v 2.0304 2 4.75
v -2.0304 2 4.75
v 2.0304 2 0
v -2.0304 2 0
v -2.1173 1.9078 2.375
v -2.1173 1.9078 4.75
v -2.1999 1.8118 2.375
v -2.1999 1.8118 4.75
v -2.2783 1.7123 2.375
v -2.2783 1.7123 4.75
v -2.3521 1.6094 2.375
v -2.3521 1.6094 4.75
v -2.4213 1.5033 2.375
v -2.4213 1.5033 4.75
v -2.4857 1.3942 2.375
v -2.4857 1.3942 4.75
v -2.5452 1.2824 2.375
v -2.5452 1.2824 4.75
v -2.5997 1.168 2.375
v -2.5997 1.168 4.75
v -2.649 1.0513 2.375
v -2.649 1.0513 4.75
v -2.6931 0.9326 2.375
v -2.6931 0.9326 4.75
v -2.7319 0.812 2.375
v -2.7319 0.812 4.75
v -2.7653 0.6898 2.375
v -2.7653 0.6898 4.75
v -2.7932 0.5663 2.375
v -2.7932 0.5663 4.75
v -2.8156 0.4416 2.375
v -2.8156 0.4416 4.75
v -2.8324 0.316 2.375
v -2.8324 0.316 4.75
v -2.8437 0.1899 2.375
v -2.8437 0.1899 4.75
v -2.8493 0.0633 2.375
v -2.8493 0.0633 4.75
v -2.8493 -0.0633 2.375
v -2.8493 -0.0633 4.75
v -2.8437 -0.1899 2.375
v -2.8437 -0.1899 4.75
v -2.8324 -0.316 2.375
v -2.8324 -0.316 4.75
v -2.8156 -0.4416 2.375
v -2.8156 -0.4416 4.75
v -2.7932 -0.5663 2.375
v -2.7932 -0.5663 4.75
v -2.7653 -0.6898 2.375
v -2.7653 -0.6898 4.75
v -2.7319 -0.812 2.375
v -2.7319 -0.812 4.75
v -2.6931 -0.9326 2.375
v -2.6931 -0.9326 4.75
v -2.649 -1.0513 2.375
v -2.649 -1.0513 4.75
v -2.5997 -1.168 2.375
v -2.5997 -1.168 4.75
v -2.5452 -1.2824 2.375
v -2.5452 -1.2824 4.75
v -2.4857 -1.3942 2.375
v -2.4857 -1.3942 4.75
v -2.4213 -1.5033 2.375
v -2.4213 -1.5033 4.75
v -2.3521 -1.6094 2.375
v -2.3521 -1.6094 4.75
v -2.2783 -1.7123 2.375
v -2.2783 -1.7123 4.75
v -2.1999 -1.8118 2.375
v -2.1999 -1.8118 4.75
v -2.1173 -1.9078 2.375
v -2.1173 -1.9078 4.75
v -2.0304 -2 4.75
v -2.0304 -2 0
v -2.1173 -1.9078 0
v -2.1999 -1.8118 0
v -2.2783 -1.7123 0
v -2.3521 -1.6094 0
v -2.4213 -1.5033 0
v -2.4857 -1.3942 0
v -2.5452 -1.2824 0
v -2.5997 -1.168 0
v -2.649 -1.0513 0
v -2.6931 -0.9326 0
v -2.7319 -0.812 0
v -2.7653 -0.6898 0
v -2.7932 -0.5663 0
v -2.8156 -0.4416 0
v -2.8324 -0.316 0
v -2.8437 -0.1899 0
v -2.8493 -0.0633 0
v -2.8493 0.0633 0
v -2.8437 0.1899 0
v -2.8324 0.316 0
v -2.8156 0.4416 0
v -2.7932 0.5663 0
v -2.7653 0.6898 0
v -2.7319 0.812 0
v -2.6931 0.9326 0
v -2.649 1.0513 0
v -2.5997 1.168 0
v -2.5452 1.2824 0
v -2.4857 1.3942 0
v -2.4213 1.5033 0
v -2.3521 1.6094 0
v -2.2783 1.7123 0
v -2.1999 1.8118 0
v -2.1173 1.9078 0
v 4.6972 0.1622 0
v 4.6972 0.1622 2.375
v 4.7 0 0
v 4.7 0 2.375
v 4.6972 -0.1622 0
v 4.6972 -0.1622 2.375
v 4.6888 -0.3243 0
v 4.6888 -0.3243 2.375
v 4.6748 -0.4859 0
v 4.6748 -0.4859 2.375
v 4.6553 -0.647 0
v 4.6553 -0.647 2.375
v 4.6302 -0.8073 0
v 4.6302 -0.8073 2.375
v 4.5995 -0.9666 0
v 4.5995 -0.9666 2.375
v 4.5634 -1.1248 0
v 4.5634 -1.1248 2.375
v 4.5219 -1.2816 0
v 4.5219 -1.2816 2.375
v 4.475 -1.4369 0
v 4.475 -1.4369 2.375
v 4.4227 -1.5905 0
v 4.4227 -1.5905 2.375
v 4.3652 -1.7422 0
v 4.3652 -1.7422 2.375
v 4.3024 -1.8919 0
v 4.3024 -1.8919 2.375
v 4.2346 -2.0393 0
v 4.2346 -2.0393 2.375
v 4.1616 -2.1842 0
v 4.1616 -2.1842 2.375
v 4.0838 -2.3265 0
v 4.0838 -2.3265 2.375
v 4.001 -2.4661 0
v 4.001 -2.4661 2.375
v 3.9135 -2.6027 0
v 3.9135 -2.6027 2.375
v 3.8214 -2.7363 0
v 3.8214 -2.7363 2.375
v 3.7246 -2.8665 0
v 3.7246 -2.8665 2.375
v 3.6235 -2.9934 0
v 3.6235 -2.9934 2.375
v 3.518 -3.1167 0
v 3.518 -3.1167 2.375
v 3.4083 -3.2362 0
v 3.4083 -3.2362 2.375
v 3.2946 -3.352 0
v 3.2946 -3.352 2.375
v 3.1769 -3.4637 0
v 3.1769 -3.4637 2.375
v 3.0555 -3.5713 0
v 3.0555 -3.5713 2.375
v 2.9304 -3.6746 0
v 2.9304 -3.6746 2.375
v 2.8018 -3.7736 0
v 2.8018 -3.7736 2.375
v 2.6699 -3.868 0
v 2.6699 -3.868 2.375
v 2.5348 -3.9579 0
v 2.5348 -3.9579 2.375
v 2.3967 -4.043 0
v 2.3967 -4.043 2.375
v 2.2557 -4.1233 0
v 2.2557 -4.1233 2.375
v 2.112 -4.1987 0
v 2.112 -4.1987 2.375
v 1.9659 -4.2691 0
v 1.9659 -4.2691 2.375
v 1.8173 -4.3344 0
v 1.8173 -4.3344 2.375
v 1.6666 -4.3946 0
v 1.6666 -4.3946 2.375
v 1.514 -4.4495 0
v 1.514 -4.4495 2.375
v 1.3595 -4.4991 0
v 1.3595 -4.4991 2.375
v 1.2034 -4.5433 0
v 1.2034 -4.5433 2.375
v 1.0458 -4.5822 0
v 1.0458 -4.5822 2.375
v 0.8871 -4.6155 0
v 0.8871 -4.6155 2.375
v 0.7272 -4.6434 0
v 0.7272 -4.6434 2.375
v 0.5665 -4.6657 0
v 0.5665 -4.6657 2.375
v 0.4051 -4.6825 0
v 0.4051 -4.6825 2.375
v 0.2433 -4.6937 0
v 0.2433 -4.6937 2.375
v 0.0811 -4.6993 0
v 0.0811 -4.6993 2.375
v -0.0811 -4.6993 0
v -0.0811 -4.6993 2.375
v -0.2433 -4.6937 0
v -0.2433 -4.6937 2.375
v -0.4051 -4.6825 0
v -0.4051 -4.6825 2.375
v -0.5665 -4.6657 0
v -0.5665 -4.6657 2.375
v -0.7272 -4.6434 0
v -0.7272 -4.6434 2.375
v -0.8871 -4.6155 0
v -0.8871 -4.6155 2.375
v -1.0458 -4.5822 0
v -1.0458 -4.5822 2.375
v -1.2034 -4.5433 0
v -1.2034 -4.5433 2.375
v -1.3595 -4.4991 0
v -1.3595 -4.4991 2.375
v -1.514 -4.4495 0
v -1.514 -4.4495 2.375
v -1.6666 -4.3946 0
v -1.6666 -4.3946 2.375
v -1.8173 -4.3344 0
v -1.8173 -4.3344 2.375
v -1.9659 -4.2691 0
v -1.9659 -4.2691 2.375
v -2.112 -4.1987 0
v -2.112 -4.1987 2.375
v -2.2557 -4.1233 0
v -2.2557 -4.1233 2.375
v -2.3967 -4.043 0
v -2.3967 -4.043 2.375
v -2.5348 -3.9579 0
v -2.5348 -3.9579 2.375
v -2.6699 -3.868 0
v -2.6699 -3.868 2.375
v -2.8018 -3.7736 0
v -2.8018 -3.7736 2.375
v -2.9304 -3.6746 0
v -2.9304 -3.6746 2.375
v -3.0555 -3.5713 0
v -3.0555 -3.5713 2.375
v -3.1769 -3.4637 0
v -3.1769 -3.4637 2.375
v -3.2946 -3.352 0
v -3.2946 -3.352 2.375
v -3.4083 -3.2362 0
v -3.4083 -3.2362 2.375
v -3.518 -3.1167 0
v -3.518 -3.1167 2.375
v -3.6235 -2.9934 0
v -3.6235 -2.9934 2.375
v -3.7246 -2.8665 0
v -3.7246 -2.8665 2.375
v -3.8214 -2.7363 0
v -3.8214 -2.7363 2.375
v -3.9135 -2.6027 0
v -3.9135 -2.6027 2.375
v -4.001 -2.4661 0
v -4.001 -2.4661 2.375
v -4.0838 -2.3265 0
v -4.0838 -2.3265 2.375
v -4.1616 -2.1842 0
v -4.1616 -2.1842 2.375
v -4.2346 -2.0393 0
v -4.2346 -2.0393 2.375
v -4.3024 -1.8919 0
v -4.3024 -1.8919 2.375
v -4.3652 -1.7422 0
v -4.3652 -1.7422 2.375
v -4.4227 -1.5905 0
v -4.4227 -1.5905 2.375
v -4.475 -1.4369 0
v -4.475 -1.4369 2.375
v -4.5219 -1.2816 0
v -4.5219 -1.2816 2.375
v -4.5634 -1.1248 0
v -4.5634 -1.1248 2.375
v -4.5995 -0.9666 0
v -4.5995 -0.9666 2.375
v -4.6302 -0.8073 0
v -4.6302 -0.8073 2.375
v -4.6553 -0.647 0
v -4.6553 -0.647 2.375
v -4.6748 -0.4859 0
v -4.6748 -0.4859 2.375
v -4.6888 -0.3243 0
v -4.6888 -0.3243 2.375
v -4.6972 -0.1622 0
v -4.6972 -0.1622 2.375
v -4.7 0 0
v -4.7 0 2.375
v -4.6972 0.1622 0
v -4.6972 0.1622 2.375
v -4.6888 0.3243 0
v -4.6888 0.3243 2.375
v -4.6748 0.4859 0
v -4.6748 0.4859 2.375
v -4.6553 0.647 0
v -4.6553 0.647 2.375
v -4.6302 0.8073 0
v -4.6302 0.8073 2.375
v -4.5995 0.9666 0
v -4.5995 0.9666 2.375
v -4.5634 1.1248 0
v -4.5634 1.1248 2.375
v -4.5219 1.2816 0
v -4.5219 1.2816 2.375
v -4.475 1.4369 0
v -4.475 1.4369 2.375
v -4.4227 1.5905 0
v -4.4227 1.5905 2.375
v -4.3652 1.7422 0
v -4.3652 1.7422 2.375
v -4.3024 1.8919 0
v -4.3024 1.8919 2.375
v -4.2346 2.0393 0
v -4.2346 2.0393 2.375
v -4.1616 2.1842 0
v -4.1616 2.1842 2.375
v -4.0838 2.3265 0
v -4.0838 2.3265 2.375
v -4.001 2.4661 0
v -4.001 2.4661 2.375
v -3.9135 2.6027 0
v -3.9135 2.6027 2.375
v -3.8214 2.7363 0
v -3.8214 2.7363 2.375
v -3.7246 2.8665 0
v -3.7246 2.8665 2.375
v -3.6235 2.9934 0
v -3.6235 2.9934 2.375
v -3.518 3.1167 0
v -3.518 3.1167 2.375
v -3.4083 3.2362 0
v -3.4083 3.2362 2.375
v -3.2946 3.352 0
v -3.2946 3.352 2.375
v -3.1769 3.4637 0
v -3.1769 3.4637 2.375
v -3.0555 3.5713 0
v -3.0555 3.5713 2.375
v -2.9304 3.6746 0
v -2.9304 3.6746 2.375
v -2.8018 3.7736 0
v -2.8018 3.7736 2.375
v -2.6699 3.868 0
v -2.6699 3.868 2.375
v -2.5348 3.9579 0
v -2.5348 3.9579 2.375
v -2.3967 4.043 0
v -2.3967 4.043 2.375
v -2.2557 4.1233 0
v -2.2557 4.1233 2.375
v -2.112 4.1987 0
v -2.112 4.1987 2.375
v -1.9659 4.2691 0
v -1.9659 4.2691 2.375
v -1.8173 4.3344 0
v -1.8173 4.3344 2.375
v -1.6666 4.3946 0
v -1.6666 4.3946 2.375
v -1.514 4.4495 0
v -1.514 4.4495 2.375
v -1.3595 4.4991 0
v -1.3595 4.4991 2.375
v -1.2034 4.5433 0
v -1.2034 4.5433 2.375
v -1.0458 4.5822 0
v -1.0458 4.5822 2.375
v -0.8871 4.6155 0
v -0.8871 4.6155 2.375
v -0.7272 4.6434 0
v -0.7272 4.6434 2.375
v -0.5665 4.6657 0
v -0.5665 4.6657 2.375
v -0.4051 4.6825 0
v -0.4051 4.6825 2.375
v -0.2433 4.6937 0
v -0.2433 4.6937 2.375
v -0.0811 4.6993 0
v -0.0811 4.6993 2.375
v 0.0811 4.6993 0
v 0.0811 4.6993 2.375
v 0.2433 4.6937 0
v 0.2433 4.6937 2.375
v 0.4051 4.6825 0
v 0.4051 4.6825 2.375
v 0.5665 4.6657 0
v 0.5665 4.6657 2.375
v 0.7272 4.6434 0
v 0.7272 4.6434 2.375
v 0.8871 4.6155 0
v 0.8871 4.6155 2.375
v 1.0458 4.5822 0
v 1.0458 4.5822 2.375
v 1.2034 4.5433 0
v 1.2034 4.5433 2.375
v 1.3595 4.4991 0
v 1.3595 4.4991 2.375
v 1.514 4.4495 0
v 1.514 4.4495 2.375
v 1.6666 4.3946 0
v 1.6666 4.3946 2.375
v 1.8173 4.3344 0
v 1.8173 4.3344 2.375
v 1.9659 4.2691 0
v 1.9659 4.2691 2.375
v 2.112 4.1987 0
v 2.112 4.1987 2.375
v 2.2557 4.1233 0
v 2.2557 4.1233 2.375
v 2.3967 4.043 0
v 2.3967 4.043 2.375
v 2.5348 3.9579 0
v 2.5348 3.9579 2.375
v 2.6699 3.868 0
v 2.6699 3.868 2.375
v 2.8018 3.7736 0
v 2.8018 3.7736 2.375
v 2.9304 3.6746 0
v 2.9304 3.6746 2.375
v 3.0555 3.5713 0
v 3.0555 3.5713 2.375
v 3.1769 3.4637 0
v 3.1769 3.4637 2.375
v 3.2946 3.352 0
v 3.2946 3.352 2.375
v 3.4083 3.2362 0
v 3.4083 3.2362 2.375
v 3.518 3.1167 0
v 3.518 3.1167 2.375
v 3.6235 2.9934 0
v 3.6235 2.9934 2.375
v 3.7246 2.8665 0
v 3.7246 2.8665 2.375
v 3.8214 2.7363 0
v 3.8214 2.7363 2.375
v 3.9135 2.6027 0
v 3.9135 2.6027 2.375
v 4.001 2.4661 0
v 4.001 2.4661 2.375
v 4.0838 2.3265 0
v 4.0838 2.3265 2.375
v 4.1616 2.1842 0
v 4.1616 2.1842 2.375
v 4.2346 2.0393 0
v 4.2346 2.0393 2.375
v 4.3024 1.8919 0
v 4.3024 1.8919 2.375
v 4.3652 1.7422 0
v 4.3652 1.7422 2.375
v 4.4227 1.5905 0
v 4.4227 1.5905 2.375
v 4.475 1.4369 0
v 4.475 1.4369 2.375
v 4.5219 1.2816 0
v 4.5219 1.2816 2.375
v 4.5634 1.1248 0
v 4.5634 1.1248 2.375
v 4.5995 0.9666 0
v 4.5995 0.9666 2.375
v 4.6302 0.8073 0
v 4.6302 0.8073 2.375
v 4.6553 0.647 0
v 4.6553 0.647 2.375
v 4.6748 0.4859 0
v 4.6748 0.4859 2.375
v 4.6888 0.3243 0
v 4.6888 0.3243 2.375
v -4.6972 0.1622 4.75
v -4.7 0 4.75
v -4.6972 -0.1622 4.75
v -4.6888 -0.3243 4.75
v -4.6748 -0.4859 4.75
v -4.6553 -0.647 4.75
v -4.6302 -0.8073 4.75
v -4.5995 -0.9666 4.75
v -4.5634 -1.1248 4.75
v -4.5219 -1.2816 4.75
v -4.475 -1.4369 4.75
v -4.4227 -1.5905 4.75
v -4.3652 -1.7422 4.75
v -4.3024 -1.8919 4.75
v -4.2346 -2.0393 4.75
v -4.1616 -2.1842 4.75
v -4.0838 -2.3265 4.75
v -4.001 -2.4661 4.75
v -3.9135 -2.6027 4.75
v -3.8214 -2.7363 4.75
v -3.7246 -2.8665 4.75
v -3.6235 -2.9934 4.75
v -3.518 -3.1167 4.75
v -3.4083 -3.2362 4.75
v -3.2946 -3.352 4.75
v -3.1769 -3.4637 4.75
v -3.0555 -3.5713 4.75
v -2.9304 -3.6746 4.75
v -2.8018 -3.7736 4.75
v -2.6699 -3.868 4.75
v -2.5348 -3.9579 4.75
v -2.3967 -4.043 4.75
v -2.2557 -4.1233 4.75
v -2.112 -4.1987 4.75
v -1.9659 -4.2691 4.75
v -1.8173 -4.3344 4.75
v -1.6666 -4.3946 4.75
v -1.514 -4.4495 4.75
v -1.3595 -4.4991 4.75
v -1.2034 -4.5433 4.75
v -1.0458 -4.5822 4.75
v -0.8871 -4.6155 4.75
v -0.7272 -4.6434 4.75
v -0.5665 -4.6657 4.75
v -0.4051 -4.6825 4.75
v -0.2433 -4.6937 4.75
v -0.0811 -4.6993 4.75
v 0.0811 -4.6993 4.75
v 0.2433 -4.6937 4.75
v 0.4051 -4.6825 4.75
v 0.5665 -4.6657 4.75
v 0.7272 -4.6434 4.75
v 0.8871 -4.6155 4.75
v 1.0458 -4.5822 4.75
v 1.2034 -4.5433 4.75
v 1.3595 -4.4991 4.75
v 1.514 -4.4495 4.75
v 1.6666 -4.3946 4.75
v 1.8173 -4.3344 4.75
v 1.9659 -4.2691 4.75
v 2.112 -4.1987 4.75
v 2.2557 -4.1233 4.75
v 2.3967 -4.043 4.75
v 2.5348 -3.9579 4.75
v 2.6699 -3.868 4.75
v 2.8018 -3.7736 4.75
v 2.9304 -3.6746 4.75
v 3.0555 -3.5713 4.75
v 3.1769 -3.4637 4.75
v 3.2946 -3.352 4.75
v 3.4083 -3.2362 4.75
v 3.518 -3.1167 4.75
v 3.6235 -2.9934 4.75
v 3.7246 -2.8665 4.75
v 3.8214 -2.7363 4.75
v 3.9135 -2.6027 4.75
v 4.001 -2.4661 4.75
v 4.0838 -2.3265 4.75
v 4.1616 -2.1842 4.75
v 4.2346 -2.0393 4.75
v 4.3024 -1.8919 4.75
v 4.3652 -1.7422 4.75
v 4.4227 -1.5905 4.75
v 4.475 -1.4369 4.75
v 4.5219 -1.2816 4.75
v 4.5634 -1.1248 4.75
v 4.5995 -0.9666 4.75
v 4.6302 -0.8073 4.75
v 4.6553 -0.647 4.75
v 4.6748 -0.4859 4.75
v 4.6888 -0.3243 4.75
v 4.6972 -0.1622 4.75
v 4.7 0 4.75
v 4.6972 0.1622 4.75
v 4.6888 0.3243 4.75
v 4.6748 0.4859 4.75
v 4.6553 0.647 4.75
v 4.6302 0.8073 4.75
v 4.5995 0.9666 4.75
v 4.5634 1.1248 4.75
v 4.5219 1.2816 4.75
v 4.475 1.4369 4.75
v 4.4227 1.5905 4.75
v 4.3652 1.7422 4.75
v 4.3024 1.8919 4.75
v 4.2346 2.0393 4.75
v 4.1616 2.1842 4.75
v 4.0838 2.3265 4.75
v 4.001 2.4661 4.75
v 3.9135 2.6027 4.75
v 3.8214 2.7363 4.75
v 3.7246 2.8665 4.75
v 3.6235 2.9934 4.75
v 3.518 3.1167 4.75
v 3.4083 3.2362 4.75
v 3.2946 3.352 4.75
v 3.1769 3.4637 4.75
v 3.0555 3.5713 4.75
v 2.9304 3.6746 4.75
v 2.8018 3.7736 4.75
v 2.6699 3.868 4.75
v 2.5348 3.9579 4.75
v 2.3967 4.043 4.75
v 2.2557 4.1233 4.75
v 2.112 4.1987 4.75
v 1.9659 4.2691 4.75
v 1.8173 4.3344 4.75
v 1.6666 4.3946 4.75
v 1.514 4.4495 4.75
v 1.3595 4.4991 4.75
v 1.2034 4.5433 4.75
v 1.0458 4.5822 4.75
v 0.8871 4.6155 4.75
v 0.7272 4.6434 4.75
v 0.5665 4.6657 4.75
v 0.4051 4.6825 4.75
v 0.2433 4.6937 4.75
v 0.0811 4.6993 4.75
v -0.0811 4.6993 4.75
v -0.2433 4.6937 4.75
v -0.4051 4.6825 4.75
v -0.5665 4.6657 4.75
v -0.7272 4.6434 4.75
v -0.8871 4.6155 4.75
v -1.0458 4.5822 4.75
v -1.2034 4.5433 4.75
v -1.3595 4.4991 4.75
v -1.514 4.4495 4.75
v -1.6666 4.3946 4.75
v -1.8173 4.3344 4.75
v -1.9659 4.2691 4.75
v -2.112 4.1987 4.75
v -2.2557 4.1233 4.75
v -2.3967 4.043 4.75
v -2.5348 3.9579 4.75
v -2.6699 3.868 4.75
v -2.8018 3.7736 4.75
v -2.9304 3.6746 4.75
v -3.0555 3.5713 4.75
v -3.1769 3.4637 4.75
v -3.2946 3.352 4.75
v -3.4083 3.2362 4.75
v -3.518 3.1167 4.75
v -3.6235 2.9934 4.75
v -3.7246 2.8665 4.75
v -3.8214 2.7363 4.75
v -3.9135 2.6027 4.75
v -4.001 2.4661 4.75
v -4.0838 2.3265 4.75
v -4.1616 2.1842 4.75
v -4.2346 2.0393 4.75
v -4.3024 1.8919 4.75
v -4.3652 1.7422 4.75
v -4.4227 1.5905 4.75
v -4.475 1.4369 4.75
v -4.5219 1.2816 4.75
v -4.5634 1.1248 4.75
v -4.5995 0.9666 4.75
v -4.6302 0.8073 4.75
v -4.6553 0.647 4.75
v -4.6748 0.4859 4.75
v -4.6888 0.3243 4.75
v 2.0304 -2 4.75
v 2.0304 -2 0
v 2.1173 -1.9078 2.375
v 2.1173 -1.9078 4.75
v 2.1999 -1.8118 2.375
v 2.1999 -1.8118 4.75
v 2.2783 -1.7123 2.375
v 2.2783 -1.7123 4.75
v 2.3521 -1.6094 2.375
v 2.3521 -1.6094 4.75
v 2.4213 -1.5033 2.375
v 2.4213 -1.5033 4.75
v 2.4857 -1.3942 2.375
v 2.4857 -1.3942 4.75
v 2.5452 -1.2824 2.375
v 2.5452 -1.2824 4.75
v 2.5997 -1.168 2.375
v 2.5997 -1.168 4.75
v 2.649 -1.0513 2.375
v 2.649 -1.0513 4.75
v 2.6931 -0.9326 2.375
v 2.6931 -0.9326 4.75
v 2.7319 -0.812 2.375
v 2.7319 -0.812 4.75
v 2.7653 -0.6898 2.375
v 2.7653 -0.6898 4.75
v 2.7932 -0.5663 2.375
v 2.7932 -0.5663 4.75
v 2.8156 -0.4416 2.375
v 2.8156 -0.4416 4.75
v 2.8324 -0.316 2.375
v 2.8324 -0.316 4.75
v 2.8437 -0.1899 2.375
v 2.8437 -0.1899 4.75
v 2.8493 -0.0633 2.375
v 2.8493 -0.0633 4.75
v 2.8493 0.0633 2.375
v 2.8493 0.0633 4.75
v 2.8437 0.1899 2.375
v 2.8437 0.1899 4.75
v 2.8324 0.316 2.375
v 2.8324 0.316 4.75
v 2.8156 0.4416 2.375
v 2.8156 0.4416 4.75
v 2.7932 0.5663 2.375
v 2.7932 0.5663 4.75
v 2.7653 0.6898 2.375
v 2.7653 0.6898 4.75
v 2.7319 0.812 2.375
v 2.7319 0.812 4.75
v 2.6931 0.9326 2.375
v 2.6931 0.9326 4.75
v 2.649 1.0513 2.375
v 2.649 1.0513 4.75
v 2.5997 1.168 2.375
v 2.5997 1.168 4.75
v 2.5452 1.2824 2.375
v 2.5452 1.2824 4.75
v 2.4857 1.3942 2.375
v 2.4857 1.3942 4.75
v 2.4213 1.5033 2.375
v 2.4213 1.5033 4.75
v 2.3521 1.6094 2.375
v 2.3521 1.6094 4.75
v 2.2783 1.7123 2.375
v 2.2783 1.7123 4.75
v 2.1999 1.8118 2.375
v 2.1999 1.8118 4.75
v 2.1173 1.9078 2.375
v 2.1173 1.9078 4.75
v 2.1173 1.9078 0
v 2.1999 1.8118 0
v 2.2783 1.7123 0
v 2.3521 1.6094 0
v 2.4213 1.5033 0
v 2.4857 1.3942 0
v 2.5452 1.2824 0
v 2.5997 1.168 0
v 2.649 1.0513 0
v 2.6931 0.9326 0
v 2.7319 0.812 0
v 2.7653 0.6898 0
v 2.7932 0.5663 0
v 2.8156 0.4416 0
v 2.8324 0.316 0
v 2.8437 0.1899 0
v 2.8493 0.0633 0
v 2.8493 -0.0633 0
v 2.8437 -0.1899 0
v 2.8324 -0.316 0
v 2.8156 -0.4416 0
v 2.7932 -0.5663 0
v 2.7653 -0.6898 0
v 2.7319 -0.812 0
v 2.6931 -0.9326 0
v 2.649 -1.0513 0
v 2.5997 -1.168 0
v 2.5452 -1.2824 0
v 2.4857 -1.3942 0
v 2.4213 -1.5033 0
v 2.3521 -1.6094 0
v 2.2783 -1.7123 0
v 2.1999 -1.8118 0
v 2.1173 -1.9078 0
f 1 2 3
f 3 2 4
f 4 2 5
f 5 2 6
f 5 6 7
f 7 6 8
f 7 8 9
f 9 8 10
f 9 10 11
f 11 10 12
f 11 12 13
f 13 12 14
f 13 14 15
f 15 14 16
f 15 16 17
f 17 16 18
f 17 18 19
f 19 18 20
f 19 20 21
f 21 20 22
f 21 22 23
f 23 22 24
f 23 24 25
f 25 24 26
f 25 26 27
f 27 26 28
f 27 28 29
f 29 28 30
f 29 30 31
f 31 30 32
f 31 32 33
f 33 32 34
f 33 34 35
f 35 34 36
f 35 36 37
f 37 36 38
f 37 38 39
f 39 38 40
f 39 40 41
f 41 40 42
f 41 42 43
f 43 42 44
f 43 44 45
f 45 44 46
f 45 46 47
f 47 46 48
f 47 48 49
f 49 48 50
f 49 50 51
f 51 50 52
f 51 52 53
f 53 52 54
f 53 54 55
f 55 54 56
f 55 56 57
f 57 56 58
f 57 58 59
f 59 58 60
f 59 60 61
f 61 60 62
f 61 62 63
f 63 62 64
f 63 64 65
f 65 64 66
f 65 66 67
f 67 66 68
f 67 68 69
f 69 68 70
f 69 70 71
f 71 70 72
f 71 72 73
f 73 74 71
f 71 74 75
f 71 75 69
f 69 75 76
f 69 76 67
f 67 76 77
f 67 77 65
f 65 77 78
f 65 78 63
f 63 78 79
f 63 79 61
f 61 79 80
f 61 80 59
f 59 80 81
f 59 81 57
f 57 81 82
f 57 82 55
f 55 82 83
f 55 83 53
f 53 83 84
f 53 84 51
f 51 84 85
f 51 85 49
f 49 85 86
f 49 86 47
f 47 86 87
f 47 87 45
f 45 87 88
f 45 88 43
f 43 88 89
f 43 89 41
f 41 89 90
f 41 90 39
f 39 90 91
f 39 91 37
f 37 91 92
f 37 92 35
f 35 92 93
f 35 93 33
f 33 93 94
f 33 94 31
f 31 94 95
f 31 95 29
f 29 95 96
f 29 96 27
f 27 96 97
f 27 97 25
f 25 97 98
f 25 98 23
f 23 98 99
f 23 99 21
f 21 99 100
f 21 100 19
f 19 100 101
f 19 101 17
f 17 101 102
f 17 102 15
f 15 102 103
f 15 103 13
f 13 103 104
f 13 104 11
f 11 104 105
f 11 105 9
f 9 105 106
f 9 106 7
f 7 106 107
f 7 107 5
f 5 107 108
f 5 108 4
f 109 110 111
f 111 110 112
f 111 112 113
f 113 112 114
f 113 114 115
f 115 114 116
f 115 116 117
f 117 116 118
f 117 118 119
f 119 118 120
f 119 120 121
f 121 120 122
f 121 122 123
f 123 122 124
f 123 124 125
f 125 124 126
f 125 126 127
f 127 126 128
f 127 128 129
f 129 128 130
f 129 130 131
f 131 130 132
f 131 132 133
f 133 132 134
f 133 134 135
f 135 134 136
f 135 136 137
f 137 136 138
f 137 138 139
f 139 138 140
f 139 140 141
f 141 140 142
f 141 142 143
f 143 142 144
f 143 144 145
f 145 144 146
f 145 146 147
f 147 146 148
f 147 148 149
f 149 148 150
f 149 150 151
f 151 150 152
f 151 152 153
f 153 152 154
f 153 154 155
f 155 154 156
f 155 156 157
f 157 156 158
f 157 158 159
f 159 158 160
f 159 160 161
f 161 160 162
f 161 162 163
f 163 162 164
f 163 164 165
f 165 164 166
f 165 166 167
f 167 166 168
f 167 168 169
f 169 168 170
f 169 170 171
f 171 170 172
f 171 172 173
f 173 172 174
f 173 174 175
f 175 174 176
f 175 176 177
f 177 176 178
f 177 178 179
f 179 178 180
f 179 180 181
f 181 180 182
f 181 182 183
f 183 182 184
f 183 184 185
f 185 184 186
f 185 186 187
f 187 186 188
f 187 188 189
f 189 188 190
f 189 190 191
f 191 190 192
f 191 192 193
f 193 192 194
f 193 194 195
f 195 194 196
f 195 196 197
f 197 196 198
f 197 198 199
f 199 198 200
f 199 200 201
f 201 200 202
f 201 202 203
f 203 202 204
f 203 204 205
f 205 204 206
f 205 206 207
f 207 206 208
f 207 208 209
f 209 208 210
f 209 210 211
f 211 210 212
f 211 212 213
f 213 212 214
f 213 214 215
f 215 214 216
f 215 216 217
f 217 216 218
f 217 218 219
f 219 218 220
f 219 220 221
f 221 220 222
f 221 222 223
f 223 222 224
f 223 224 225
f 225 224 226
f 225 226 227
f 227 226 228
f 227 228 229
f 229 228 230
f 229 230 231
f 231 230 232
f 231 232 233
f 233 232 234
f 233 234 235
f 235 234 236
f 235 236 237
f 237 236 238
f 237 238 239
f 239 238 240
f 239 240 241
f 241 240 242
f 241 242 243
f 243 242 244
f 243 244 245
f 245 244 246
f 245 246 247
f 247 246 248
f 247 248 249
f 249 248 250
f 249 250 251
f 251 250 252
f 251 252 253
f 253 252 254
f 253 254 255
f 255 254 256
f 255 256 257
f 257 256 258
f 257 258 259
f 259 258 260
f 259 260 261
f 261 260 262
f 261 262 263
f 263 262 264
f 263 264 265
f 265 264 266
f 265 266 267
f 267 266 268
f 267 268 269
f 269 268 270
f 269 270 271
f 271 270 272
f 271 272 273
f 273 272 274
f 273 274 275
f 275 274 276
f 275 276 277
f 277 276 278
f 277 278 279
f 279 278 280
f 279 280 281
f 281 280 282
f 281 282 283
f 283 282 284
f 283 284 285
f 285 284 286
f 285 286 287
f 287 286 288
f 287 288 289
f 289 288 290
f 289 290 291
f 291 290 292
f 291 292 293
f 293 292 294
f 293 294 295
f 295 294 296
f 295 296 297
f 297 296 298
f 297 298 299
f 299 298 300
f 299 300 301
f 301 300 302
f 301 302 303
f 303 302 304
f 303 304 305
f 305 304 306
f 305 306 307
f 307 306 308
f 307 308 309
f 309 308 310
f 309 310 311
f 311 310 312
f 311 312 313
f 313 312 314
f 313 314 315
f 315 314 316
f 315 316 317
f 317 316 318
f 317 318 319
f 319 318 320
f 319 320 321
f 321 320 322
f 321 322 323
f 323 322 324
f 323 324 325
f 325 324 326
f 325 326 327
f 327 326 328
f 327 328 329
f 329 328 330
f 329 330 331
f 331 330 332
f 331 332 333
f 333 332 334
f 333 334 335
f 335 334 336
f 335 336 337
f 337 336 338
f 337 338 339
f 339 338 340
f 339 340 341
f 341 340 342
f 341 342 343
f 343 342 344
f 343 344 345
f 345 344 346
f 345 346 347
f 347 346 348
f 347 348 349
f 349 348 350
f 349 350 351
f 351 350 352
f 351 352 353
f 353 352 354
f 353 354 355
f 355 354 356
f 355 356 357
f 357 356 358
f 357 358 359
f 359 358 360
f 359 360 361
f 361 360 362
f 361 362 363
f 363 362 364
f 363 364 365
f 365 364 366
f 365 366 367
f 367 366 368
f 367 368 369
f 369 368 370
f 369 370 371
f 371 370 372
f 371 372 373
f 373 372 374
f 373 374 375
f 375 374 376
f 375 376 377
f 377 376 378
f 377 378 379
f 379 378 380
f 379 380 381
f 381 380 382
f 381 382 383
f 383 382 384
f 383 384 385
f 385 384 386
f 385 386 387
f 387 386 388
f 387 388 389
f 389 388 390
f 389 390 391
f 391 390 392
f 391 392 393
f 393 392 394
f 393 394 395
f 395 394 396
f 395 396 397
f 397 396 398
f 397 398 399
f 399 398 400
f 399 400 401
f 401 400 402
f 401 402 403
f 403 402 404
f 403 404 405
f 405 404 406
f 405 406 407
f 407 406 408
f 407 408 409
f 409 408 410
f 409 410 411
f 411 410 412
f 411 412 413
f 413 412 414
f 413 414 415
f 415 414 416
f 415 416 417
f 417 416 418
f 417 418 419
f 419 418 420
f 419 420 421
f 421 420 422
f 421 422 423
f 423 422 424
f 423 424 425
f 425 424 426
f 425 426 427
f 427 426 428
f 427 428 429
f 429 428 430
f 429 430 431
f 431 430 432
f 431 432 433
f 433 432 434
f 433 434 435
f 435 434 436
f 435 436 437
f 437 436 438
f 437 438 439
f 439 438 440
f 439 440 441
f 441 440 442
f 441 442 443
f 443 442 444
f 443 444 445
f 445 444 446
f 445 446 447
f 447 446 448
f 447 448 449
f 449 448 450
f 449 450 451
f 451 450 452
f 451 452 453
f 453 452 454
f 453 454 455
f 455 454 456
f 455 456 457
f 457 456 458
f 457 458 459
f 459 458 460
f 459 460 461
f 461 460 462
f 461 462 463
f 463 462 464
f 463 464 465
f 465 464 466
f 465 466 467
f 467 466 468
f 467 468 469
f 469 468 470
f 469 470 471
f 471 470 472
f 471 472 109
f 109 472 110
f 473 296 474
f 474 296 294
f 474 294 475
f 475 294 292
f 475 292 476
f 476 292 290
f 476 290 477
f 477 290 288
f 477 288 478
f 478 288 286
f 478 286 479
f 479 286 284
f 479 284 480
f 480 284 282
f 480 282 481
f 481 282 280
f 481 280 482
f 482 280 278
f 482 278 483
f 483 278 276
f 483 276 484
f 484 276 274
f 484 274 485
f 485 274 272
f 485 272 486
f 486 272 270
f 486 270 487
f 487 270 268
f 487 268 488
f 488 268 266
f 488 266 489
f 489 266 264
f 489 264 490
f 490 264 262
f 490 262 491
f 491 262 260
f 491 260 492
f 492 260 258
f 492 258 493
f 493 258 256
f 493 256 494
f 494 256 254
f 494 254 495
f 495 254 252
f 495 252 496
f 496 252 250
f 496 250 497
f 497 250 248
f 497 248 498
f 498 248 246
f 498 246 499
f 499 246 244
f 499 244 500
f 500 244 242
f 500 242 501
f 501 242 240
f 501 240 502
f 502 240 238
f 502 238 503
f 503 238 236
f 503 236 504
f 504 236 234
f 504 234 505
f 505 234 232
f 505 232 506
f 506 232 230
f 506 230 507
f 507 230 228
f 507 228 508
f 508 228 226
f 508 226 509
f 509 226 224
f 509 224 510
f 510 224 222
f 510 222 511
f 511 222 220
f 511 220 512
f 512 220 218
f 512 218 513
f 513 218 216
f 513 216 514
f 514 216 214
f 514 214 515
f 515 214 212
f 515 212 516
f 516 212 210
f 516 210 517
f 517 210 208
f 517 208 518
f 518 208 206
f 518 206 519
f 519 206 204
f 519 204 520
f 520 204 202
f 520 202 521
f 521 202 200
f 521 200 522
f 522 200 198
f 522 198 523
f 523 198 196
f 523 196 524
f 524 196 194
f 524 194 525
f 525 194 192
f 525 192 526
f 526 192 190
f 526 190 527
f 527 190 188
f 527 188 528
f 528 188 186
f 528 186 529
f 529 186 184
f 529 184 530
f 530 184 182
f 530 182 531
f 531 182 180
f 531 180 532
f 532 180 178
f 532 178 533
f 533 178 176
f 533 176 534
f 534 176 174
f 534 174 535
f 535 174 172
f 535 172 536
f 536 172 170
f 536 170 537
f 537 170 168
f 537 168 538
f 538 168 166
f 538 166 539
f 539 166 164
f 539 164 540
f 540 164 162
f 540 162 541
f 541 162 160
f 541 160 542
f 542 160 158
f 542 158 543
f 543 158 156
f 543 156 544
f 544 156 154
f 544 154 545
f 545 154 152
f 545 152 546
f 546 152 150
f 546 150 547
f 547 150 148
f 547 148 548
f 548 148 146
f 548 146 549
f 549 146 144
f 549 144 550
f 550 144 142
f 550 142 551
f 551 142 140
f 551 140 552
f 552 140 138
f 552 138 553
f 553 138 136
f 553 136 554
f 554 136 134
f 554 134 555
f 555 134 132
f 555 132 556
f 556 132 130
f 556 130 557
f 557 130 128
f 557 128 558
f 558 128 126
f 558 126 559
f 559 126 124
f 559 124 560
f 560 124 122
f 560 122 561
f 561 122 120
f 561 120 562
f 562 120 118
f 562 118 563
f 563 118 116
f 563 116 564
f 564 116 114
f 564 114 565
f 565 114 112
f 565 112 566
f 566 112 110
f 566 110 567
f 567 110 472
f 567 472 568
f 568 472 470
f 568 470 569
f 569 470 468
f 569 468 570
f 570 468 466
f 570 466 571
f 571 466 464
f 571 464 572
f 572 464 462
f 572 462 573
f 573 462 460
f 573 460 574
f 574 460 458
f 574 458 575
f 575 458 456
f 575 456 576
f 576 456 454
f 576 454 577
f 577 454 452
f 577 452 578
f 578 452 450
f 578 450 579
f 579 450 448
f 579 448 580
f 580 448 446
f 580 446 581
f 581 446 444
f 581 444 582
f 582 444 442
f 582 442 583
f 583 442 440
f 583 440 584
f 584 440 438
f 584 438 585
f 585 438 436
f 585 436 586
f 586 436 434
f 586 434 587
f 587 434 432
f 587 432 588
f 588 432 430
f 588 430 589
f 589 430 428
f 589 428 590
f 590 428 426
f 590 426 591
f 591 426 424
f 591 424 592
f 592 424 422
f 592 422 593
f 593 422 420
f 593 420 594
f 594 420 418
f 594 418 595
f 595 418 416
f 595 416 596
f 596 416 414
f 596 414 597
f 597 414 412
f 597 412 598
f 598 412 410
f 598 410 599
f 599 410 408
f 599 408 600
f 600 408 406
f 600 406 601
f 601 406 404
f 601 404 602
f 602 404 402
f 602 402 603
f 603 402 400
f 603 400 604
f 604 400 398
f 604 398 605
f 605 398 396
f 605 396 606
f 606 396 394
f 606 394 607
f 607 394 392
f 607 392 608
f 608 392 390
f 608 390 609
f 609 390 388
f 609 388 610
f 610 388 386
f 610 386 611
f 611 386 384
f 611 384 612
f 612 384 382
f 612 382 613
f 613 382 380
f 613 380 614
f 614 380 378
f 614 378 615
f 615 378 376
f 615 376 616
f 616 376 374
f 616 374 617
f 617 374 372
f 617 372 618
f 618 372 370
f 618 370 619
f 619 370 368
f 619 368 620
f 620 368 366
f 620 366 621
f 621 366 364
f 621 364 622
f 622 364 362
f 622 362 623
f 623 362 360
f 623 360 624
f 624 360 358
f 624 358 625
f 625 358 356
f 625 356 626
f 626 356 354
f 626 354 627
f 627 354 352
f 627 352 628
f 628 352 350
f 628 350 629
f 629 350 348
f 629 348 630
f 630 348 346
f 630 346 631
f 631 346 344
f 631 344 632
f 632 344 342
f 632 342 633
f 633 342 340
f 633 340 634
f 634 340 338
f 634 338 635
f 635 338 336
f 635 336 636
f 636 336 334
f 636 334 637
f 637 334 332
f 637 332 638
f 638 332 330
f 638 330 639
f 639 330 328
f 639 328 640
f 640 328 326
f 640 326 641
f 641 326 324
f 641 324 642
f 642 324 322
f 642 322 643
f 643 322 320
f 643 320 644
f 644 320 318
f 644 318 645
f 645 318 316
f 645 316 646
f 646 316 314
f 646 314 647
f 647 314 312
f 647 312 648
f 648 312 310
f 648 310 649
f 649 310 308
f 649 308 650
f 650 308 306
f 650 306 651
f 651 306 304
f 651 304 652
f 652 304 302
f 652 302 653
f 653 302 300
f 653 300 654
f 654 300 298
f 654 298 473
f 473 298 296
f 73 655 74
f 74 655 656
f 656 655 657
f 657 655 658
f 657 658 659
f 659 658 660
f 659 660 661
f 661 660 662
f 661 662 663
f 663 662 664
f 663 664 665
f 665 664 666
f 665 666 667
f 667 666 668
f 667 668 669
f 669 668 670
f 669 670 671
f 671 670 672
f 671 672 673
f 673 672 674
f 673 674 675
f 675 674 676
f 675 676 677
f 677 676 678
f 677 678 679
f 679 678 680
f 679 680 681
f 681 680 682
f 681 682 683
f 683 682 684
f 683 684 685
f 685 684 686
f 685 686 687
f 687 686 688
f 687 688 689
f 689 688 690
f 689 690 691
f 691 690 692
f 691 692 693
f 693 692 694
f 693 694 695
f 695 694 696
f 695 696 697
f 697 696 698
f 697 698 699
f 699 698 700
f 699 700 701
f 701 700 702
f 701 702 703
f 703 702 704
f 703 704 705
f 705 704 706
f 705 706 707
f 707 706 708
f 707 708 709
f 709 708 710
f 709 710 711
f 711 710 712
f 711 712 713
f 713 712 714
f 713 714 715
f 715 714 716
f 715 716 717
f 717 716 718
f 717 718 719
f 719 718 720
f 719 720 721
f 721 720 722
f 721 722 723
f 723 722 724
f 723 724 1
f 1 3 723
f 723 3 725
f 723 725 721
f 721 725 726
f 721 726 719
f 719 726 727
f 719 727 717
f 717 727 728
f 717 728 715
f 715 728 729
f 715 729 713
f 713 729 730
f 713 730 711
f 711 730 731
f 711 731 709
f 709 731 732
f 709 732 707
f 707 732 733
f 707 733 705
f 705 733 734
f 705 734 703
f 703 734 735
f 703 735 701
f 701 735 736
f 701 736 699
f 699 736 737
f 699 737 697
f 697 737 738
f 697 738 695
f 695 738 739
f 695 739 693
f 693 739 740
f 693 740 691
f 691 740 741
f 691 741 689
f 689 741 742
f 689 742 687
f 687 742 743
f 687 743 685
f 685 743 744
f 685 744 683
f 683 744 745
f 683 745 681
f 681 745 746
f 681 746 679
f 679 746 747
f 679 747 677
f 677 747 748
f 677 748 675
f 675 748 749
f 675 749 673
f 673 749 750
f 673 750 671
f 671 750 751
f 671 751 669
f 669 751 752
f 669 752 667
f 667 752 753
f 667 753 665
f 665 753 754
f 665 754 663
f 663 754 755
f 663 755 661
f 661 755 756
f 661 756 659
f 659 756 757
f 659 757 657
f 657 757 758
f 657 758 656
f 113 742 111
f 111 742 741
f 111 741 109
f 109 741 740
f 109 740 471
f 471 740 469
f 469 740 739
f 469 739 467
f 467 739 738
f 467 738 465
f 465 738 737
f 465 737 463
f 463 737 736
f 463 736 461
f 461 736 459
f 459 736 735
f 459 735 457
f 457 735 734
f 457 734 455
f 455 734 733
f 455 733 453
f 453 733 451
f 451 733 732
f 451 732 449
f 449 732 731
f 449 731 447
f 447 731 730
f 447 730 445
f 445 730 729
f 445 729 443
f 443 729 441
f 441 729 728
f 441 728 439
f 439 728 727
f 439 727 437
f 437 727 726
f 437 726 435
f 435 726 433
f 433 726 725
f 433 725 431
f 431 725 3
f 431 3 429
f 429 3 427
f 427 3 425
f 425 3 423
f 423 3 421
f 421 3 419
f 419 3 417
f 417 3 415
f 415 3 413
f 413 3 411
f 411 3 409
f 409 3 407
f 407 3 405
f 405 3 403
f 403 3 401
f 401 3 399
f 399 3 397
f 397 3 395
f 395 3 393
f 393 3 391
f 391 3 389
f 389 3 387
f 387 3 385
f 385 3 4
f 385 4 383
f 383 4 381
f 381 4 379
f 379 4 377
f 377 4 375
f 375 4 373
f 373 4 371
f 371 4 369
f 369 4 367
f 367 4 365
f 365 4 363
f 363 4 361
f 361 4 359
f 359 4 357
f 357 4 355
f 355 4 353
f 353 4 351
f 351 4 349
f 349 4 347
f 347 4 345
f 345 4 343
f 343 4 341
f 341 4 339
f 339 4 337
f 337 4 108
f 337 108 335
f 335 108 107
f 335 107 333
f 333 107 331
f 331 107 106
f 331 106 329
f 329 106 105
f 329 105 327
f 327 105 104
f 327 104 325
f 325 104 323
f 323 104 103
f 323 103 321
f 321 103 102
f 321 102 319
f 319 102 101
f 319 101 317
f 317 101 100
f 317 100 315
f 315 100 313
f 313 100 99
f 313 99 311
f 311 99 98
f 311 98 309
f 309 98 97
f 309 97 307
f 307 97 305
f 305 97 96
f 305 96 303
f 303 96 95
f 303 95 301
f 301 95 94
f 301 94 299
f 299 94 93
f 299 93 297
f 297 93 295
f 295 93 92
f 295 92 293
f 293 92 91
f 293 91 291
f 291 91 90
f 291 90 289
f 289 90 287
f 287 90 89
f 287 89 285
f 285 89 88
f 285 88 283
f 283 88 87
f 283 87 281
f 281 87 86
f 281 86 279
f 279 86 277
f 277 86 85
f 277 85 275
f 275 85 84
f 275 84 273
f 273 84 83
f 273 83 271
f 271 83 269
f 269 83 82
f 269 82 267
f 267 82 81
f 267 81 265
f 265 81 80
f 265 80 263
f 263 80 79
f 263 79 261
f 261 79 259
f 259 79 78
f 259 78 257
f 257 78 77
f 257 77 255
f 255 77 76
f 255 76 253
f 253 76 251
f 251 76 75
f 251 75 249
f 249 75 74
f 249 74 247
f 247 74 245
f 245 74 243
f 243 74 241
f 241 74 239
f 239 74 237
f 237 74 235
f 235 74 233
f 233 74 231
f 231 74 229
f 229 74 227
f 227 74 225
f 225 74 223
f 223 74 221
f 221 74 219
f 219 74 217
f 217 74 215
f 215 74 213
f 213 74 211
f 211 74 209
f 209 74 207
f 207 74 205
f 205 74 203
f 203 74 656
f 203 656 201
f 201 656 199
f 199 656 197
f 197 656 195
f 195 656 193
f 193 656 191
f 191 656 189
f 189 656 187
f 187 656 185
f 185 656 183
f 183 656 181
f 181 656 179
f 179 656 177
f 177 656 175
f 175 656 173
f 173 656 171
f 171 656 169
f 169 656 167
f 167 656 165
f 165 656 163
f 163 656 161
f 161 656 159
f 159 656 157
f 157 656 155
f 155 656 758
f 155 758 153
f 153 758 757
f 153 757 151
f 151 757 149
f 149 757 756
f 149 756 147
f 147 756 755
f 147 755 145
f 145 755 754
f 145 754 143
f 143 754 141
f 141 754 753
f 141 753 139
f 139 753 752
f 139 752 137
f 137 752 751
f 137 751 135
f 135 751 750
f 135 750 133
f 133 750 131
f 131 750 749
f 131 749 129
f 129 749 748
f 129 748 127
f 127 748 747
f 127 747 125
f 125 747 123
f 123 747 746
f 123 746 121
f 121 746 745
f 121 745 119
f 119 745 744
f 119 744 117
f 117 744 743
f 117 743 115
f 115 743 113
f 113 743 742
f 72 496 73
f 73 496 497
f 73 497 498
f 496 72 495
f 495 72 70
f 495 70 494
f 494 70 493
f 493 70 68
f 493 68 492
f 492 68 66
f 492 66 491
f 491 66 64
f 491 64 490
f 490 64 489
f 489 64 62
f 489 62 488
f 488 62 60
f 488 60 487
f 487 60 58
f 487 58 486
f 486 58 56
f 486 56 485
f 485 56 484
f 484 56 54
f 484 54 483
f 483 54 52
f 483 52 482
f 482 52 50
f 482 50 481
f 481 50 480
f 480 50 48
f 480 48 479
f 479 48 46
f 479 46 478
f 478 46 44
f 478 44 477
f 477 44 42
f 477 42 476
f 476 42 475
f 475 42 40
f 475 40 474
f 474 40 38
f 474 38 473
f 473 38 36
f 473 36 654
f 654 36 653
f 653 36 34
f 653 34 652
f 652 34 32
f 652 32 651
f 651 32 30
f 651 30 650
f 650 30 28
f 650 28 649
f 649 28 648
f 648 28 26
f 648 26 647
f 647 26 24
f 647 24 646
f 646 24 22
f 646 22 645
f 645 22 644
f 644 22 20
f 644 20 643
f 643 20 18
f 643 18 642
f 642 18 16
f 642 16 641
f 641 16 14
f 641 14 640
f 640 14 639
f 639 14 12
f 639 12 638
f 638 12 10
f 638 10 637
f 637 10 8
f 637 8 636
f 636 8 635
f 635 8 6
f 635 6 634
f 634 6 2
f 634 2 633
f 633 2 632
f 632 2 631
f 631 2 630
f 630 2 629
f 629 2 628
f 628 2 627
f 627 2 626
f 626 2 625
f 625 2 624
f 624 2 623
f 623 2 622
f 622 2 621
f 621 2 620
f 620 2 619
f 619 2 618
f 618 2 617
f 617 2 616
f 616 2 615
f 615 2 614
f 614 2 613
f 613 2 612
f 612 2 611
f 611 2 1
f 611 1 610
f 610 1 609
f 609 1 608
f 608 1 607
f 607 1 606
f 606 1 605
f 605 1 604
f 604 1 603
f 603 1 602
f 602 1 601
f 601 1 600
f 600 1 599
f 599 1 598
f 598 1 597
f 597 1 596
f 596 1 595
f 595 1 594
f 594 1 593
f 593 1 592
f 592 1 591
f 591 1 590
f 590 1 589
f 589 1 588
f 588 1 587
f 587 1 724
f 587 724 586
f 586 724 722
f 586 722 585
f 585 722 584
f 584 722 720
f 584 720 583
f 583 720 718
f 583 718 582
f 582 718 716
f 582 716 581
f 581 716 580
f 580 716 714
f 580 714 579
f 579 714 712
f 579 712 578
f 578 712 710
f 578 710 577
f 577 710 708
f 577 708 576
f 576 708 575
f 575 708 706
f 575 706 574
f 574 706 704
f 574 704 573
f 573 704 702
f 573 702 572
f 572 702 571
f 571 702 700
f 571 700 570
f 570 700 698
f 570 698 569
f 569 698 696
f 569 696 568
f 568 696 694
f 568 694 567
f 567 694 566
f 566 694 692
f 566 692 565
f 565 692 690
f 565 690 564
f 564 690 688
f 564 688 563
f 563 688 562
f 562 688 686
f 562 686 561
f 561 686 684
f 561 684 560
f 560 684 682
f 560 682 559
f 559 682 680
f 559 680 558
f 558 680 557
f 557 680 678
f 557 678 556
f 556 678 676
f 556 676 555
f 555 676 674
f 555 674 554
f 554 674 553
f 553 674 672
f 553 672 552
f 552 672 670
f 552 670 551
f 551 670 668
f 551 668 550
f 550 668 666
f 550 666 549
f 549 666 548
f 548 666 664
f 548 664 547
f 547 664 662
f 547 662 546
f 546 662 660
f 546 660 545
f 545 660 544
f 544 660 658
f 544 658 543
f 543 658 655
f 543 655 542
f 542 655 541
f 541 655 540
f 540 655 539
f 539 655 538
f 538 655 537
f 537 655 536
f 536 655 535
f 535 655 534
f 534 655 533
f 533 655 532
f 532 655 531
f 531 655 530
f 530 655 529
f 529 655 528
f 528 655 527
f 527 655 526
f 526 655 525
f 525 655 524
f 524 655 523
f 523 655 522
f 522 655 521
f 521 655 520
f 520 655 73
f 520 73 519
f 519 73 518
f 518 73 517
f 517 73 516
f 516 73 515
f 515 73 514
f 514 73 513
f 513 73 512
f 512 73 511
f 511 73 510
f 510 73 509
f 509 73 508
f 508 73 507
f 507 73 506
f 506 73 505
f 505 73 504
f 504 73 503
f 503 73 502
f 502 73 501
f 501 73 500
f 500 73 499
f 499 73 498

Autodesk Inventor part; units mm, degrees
ref_plane "YZ Plane" through (0, 0, 0) normal (1, 0, 0) x (0, 1, 0)
ref_plane "XZ Plane" through (0, 0, 0) normal (0, 1, 0) x (-1, 0, 0)
sketch "Sketch1" plane through (0, 0, 0) normal (0, 0, 1) x (1, 0, 0)
  line L0 (1.9666, 1.85) -> (-1.9666, 1.85) construction
  arc A0 (-1.9666, 1.85) -> (-1.9666, -1.85) centre (0, 0) ccw construction
  arc A1 (1.9666, -1.85) -> (1.9666, 1.85) centre (0, 0) ccw construction
  line L1 (-1.9666, -1.85) -> (1.9666, -1.85) construction
  circle A2 centre (0, 0) radius 4.7
  arc A3 (-2.0304, 2) -> (-2.0304, -2) centre (0, 0) ccw
  line L2 (-2.0304, 2) -> (2.0304, 2)
  line L3 (-2.0304, -2) -> (2.0304, -2)
  arc A4 (2.0304, -2) -> (2.0304, 2) centre (0, 0) ccw
  dimension "d0" = 2
  dimension "d6" = 0.15
  dimension "d7" = 0.15
ref_plane "Work Plane1" through (-12.875, -12.875, 4.75) normal (0, 0, -1) x (0, 1, 0)
extrude "Extrusion1" add sketch "Sketch1" along normal up to surface (4.75 mm away)
properties part number "TTencoderspacer"
